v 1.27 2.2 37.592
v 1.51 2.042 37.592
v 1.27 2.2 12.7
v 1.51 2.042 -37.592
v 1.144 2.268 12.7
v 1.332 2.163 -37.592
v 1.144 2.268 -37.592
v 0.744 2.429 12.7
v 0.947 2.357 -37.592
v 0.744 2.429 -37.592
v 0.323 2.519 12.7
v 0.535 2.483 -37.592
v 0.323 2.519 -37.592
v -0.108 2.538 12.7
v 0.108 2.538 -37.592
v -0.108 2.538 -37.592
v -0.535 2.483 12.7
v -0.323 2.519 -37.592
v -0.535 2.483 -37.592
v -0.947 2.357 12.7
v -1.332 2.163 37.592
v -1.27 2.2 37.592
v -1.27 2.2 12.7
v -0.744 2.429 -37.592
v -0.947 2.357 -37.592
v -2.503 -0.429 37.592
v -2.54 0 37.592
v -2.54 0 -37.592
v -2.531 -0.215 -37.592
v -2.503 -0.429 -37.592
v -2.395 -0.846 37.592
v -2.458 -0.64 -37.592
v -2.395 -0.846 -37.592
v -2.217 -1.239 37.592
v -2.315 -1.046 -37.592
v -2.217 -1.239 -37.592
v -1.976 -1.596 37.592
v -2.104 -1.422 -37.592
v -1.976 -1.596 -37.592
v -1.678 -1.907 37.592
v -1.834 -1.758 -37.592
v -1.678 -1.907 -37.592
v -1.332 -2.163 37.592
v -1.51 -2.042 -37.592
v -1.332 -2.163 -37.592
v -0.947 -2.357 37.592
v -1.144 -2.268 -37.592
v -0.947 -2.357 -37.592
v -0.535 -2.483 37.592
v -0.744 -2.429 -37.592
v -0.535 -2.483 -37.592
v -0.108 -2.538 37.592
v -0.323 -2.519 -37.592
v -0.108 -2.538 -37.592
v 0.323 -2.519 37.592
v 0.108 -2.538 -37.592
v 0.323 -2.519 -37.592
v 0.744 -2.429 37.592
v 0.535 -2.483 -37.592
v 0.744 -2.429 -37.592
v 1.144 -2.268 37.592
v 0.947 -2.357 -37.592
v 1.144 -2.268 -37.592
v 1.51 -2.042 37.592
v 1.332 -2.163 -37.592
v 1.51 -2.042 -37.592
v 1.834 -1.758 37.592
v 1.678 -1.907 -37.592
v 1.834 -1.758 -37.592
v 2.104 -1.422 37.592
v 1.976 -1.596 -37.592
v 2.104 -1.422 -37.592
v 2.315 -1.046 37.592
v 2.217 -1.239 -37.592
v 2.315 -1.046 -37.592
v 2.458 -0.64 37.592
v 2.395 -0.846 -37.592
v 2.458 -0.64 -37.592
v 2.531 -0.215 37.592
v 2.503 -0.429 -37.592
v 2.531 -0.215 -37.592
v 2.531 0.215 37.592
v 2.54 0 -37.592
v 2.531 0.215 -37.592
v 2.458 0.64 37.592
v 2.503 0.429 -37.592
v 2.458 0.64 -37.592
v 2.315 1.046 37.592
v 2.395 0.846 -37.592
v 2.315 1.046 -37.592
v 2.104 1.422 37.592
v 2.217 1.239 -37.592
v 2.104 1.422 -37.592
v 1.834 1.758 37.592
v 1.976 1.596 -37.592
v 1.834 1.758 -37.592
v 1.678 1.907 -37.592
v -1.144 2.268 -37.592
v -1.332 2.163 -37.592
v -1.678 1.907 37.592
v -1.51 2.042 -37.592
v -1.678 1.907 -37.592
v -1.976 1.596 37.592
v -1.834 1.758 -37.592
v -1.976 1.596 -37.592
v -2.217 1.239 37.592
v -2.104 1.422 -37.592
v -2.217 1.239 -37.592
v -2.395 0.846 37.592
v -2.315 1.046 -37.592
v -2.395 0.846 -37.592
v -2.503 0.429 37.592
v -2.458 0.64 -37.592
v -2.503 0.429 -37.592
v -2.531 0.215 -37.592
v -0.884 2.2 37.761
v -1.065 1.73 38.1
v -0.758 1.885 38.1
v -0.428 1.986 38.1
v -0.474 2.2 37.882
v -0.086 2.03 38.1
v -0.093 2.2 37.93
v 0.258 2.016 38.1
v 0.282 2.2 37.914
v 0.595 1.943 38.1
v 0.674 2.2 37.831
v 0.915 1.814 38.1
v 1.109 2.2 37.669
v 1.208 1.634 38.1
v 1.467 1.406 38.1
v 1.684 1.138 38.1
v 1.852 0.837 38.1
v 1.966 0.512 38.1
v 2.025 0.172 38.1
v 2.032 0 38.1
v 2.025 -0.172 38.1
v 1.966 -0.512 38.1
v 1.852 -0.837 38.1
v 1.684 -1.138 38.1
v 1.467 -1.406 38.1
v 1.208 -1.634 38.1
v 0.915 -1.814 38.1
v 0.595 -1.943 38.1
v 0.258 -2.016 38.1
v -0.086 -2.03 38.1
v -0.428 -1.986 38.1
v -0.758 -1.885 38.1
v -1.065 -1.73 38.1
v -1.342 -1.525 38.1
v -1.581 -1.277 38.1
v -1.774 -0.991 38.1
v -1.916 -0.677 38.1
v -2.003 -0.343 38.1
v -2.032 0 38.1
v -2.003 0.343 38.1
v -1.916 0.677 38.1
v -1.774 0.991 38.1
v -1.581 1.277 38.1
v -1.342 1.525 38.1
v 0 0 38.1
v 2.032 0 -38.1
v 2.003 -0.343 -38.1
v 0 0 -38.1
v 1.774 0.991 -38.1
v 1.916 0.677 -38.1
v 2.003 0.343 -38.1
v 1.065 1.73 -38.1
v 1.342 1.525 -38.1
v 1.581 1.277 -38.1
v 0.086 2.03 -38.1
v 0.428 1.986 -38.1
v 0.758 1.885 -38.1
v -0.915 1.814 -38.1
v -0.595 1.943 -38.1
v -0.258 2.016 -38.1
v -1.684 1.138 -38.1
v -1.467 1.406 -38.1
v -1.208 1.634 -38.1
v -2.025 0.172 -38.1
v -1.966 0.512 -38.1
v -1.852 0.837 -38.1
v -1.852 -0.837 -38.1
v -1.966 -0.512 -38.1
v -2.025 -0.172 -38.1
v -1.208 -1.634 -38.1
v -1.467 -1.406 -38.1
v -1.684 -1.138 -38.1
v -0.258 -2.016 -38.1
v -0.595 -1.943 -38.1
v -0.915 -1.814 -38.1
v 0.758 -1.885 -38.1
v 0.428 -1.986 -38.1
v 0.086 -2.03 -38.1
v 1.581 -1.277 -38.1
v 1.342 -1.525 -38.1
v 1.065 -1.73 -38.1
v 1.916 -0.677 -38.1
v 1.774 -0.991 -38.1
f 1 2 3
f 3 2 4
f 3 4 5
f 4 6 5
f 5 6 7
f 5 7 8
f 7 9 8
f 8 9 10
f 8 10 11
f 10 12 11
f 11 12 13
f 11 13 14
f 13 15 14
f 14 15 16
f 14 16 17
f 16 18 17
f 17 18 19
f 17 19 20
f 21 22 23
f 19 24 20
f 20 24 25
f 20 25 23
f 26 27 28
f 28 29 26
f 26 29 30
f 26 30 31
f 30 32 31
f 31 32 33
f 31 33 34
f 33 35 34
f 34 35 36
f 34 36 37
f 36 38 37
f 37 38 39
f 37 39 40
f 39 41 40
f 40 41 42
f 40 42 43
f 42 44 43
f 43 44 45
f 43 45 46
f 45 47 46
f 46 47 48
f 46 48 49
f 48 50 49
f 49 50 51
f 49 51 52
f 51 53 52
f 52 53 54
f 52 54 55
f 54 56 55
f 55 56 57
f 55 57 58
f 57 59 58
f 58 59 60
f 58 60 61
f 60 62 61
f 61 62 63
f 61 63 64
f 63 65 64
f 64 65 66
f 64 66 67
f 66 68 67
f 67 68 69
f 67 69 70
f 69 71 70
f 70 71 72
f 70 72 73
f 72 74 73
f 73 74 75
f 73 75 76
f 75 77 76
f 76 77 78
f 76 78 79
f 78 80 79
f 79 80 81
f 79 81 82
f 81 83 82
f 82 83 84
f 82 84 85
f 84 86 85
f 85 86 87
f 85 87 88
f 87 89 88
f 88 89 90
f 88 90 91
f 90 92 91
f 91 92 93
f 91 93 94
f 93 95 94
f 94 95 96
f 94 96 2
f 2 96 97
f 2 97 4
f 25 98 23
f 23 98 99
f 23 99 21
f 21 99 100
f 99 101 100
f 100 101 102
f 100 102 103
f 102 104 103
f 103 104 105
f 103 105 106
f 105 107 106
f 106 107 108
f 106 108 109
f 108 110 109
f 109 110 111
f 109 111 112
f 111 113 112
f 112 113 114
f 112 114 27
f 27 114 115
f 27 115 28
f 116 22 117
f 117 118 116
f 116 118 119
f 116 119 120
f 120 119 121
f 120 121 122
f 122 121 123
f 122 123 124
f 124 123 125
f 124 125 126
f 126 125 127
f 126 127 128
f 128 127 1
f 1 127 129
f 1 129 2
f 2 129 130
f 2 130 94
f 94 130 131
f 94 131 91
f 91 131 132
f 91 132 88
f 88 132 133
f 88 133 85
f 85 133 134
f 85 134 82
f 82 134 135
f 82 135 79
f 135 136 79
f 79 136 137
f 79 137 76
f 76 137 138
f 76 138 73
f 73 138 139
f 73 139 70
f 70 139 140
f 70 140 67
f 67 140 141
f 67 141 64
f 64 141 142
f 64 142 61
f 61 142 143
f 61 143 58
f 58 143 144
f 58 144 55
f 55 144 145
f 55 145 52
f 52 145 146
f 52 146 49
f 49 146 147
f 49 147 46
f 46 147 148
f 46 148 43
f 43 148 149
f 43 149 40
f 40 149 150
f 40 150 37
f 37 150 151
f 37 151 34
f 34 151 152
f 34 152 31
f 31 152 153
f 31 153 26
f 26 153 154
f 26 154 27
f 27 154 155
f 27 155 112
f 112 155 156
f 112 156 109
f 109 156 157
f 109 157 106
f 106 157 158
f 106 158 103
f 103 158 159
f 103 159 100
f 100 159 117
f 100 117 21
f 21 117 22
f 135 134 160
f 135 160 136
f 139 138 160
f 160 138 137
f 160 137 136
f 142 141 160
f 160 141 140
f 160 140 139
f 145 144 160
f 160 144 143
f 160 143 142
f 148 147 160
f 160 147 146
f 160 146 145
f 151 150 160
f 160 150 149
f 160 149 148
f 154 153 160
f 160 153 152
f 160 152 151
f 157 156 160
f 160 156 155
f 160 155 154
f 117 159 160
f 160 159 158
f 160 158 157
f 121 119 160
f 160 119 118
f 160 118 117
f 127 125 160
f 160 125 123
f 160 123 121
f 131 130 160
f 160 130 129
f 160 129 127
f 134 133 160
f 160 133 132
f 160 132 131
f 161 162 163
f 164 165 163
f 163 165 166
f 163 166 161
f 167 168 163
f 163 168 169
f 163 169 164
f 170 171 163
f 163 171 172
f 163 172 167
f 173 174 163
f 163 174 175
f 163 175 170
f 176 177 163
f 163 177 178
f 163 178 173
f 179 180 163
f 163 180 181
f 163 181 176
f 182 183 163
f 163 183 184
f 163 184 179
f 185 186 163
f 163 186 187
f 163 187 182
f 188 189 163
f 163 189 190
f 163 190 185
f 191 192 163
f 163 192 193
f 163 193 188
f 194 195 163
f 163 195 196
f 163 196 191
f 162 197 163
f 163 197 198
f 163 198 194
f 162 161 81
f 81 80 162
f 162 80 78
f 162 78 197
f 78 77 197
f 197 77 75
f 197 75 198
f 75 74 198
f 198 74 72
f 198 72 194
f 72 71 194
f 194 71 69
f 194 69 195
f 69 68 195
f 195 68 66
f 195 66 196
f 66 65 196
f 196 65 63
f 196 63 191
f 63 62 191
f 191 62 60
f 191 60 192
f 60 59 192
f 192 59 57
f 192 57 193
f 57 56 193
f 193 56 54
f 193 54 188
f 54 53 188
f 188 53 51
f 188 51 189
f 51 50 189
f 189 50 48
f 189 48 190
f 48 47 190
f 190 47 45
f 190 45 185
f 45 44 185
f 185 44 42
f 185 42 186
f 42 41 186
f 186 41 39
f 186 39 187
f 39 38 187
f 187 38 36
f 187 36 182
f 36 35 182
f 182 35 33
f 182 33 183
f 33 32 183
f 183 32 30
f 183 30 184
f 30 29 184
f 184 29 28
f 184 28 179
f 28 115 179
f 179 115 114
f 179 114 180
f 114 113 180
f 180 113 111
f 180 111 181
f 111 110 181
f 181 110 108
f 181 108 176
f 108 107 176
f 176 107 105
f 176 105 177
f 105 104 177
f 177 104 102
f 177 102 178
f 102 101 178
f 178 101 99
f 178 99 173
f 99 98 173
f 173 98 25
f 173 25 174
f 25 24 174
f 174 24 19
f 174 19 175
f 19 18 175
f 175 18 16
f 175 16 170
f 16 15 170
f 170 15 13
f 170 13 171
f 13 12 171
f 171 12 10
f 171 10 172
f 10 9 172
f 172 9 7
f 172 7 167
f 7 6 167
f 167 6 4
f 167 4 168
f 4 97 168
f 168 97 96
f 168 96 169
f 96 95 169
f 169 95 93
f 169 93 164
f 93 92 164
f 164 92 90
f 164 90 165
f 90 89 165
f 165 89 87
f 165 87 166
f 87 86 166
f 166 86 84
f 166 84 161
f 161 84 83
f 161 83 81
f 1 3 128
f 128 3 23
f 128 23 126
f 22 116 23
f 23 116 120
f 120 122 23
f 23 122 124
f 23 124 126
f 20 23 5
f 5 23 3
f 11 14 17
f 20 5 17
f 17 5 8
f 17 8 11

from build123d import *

# Parameters (mm, degrees)
SKETCH1_R      = 2.54
EXTRUDE1_DEPTH = 38.1
CHAMFER1_SIZE  = 0.508
EXTRUDE7_DEPTH = 26.4


with BuildPart() as part:
    # Sketch1 → Extrude1 (new body, symmetric)
    with BuildSketch(Plane.XY):
        Circle(SKETCH1_R)
    extrude(amount=EXTRUDE1_DEPTH, both=True)

    # Chamfer1
    chamfer1_edges = [part.edges().sort_by_distance(p)[0] for p in [
        (-2.54, 0, -38.1),
        (-2.54, 0, 38.1),
    ]]
    chamfer(chamfer1_edges, length=CHAMFER1_SIZE)

    # Sketch13 → Extrude7 (cut, through all)
    with BuildSketch(Plane.XY.offset(12.7)):
        with BuildLine():
            Line((-1.27, 2.199704526), (1.27, 2.199704526))
            ThreePointArc((1.27, 2.199704526), (0, 2.54), (-1.27, 2.199704526))
        make_face()
    extrude(amount=EXTRUDE7_DEPTH, mode=Mode.SUBTRACT)


solid = part.part
